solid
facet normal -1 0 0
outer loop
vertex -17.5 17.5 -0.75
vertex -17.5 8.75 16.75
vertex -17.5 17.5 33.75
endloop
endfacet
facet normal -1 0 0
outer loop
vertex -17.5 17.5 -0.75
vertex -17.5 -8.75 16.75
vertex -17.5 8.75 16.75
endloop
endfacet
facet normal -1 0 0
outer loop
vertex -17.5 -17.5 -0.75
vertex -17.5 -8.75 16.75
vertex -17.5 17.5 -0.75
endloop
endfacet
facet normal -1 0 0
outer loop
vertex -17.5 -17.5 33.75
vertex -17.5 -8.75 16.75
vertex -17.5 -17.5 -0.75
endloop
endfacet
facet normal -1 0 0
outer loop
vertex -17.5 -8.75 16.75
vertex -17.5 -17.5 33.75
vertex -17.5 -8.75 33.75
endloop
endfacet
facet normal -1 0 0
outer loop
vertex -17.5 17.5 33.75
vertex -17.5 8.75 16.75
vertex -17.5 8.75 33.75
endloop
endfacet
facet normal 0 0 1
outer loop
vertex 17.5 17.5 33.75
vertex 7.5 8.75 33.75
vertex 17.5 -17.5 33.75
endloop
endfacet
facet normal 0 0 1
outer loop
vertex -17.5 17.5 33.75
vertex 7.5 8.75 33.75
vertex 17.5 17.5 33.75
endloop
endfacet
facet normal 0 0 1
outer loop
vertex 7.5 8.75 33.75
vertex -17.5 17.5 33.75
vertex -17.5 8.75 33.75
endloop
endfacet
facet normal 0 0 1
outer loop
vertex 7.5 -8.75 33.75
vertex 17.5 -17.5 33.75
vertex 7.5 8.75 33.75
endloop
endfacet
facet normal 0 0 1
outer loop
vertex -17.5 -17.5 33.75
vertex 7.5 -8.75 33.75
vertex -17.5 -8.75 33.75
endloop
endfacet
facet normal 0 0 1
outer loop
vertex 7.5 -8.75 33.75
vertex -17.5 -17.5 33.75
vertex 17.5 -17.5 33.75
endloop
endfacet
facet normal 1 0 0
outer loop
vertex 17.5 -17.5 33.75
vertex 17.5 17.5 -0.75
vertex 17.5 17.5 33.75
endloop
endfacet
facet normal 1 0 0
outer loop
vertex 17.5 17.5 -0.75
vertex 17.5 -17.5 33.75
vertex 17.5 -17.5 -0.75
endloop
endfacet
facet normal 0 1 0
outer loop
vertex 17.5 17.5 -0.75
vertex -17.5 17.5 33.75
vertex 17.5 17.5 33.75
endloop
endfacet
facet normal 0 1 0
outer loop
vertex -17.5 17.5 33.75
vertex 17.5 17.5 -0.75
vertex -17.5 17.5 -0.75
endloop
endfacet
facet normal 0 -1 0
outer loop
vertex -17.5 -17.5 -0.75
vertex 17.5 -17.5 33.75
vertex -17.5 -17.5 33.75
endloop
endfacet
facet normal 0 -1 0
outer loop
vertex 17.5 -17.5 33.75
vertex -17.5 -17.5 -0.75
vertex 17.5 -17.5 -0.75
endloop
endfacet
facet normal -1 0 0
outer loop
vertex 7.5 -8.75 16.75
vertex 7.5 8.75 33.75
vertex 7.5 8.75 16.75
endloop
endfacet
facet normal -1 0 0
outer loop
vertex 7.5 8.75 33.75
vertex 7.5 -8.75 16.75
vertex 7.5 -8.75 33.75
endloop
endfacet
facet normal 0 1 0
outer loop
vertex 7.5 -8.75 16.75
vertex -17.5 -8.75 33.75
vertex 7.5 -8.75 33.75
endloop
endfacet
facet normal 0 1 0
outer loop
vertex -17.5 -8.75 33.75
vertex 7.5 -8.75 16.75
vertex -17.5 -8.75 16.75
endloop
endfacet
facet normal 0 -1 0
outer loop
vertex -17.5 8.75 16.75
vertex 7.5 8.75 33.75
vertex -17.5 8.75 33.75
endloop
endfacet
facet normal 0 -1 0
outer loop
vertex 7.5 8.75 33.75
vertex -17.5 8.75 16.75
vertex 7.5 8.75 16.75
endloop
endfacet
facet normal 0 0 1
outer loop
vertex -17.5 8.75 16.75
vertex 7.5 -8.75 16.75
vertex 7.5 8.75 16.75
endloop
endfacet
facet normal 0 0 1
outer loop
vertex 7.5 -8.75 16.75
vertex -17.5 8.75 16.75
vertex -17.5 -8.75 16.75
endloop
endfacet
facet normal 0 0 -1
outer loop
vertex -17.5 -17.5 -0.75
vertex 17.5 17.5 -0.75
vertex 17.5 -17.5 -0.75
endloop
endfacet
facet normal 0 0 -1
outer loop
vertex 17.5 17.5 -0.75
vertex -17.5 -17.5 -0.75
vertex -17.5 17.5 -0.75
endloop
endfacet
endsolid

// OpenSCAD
translate([0,0,16])
union() {
    translate([0,0,-8])
    scale([2,2,1])
    cube(17.5, center=true);
    translate([0,0,9])
    difference() {
        scale([2,2,1])
        cube(17.5, center=true);
        translate([-10,0,0])
        scale([2,1,1.1])
        cube(17.5, center=true);
    }
}
